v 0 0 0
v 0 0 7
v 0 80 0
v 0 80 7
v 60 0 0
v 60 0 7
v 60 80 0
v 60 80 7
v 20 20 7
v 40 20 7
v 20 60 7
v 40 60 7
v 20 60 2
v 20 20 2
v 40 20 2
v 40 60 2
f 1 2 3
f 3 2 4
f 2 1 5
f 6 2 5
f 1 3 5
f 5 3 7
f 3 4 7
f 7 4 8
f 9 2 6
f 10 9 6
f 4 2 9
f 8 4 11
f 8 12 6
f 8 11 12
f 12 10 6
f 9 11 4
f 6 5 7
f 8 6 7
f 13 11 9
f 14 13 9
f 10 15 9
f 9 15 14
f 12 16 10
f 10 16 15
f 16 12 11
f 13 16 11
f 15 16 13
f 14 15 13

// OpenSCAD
h1 = 7;
h2 = 5;
border = 20;
width = 20;
length = 40;

borderadd = 2*border;

difference(){
	union(){
		cube([width+borderadd,length+borderadd,h1]);
		//translate([0,length,0]) cube([length+borderadd,width+borderadd,h1]);
	}
	translate([border,border,h1-h2])
	union(){
		cube([width,length,h2]);
		//translate([0,length,0]) cube([length,width,h2]);
	}
}
